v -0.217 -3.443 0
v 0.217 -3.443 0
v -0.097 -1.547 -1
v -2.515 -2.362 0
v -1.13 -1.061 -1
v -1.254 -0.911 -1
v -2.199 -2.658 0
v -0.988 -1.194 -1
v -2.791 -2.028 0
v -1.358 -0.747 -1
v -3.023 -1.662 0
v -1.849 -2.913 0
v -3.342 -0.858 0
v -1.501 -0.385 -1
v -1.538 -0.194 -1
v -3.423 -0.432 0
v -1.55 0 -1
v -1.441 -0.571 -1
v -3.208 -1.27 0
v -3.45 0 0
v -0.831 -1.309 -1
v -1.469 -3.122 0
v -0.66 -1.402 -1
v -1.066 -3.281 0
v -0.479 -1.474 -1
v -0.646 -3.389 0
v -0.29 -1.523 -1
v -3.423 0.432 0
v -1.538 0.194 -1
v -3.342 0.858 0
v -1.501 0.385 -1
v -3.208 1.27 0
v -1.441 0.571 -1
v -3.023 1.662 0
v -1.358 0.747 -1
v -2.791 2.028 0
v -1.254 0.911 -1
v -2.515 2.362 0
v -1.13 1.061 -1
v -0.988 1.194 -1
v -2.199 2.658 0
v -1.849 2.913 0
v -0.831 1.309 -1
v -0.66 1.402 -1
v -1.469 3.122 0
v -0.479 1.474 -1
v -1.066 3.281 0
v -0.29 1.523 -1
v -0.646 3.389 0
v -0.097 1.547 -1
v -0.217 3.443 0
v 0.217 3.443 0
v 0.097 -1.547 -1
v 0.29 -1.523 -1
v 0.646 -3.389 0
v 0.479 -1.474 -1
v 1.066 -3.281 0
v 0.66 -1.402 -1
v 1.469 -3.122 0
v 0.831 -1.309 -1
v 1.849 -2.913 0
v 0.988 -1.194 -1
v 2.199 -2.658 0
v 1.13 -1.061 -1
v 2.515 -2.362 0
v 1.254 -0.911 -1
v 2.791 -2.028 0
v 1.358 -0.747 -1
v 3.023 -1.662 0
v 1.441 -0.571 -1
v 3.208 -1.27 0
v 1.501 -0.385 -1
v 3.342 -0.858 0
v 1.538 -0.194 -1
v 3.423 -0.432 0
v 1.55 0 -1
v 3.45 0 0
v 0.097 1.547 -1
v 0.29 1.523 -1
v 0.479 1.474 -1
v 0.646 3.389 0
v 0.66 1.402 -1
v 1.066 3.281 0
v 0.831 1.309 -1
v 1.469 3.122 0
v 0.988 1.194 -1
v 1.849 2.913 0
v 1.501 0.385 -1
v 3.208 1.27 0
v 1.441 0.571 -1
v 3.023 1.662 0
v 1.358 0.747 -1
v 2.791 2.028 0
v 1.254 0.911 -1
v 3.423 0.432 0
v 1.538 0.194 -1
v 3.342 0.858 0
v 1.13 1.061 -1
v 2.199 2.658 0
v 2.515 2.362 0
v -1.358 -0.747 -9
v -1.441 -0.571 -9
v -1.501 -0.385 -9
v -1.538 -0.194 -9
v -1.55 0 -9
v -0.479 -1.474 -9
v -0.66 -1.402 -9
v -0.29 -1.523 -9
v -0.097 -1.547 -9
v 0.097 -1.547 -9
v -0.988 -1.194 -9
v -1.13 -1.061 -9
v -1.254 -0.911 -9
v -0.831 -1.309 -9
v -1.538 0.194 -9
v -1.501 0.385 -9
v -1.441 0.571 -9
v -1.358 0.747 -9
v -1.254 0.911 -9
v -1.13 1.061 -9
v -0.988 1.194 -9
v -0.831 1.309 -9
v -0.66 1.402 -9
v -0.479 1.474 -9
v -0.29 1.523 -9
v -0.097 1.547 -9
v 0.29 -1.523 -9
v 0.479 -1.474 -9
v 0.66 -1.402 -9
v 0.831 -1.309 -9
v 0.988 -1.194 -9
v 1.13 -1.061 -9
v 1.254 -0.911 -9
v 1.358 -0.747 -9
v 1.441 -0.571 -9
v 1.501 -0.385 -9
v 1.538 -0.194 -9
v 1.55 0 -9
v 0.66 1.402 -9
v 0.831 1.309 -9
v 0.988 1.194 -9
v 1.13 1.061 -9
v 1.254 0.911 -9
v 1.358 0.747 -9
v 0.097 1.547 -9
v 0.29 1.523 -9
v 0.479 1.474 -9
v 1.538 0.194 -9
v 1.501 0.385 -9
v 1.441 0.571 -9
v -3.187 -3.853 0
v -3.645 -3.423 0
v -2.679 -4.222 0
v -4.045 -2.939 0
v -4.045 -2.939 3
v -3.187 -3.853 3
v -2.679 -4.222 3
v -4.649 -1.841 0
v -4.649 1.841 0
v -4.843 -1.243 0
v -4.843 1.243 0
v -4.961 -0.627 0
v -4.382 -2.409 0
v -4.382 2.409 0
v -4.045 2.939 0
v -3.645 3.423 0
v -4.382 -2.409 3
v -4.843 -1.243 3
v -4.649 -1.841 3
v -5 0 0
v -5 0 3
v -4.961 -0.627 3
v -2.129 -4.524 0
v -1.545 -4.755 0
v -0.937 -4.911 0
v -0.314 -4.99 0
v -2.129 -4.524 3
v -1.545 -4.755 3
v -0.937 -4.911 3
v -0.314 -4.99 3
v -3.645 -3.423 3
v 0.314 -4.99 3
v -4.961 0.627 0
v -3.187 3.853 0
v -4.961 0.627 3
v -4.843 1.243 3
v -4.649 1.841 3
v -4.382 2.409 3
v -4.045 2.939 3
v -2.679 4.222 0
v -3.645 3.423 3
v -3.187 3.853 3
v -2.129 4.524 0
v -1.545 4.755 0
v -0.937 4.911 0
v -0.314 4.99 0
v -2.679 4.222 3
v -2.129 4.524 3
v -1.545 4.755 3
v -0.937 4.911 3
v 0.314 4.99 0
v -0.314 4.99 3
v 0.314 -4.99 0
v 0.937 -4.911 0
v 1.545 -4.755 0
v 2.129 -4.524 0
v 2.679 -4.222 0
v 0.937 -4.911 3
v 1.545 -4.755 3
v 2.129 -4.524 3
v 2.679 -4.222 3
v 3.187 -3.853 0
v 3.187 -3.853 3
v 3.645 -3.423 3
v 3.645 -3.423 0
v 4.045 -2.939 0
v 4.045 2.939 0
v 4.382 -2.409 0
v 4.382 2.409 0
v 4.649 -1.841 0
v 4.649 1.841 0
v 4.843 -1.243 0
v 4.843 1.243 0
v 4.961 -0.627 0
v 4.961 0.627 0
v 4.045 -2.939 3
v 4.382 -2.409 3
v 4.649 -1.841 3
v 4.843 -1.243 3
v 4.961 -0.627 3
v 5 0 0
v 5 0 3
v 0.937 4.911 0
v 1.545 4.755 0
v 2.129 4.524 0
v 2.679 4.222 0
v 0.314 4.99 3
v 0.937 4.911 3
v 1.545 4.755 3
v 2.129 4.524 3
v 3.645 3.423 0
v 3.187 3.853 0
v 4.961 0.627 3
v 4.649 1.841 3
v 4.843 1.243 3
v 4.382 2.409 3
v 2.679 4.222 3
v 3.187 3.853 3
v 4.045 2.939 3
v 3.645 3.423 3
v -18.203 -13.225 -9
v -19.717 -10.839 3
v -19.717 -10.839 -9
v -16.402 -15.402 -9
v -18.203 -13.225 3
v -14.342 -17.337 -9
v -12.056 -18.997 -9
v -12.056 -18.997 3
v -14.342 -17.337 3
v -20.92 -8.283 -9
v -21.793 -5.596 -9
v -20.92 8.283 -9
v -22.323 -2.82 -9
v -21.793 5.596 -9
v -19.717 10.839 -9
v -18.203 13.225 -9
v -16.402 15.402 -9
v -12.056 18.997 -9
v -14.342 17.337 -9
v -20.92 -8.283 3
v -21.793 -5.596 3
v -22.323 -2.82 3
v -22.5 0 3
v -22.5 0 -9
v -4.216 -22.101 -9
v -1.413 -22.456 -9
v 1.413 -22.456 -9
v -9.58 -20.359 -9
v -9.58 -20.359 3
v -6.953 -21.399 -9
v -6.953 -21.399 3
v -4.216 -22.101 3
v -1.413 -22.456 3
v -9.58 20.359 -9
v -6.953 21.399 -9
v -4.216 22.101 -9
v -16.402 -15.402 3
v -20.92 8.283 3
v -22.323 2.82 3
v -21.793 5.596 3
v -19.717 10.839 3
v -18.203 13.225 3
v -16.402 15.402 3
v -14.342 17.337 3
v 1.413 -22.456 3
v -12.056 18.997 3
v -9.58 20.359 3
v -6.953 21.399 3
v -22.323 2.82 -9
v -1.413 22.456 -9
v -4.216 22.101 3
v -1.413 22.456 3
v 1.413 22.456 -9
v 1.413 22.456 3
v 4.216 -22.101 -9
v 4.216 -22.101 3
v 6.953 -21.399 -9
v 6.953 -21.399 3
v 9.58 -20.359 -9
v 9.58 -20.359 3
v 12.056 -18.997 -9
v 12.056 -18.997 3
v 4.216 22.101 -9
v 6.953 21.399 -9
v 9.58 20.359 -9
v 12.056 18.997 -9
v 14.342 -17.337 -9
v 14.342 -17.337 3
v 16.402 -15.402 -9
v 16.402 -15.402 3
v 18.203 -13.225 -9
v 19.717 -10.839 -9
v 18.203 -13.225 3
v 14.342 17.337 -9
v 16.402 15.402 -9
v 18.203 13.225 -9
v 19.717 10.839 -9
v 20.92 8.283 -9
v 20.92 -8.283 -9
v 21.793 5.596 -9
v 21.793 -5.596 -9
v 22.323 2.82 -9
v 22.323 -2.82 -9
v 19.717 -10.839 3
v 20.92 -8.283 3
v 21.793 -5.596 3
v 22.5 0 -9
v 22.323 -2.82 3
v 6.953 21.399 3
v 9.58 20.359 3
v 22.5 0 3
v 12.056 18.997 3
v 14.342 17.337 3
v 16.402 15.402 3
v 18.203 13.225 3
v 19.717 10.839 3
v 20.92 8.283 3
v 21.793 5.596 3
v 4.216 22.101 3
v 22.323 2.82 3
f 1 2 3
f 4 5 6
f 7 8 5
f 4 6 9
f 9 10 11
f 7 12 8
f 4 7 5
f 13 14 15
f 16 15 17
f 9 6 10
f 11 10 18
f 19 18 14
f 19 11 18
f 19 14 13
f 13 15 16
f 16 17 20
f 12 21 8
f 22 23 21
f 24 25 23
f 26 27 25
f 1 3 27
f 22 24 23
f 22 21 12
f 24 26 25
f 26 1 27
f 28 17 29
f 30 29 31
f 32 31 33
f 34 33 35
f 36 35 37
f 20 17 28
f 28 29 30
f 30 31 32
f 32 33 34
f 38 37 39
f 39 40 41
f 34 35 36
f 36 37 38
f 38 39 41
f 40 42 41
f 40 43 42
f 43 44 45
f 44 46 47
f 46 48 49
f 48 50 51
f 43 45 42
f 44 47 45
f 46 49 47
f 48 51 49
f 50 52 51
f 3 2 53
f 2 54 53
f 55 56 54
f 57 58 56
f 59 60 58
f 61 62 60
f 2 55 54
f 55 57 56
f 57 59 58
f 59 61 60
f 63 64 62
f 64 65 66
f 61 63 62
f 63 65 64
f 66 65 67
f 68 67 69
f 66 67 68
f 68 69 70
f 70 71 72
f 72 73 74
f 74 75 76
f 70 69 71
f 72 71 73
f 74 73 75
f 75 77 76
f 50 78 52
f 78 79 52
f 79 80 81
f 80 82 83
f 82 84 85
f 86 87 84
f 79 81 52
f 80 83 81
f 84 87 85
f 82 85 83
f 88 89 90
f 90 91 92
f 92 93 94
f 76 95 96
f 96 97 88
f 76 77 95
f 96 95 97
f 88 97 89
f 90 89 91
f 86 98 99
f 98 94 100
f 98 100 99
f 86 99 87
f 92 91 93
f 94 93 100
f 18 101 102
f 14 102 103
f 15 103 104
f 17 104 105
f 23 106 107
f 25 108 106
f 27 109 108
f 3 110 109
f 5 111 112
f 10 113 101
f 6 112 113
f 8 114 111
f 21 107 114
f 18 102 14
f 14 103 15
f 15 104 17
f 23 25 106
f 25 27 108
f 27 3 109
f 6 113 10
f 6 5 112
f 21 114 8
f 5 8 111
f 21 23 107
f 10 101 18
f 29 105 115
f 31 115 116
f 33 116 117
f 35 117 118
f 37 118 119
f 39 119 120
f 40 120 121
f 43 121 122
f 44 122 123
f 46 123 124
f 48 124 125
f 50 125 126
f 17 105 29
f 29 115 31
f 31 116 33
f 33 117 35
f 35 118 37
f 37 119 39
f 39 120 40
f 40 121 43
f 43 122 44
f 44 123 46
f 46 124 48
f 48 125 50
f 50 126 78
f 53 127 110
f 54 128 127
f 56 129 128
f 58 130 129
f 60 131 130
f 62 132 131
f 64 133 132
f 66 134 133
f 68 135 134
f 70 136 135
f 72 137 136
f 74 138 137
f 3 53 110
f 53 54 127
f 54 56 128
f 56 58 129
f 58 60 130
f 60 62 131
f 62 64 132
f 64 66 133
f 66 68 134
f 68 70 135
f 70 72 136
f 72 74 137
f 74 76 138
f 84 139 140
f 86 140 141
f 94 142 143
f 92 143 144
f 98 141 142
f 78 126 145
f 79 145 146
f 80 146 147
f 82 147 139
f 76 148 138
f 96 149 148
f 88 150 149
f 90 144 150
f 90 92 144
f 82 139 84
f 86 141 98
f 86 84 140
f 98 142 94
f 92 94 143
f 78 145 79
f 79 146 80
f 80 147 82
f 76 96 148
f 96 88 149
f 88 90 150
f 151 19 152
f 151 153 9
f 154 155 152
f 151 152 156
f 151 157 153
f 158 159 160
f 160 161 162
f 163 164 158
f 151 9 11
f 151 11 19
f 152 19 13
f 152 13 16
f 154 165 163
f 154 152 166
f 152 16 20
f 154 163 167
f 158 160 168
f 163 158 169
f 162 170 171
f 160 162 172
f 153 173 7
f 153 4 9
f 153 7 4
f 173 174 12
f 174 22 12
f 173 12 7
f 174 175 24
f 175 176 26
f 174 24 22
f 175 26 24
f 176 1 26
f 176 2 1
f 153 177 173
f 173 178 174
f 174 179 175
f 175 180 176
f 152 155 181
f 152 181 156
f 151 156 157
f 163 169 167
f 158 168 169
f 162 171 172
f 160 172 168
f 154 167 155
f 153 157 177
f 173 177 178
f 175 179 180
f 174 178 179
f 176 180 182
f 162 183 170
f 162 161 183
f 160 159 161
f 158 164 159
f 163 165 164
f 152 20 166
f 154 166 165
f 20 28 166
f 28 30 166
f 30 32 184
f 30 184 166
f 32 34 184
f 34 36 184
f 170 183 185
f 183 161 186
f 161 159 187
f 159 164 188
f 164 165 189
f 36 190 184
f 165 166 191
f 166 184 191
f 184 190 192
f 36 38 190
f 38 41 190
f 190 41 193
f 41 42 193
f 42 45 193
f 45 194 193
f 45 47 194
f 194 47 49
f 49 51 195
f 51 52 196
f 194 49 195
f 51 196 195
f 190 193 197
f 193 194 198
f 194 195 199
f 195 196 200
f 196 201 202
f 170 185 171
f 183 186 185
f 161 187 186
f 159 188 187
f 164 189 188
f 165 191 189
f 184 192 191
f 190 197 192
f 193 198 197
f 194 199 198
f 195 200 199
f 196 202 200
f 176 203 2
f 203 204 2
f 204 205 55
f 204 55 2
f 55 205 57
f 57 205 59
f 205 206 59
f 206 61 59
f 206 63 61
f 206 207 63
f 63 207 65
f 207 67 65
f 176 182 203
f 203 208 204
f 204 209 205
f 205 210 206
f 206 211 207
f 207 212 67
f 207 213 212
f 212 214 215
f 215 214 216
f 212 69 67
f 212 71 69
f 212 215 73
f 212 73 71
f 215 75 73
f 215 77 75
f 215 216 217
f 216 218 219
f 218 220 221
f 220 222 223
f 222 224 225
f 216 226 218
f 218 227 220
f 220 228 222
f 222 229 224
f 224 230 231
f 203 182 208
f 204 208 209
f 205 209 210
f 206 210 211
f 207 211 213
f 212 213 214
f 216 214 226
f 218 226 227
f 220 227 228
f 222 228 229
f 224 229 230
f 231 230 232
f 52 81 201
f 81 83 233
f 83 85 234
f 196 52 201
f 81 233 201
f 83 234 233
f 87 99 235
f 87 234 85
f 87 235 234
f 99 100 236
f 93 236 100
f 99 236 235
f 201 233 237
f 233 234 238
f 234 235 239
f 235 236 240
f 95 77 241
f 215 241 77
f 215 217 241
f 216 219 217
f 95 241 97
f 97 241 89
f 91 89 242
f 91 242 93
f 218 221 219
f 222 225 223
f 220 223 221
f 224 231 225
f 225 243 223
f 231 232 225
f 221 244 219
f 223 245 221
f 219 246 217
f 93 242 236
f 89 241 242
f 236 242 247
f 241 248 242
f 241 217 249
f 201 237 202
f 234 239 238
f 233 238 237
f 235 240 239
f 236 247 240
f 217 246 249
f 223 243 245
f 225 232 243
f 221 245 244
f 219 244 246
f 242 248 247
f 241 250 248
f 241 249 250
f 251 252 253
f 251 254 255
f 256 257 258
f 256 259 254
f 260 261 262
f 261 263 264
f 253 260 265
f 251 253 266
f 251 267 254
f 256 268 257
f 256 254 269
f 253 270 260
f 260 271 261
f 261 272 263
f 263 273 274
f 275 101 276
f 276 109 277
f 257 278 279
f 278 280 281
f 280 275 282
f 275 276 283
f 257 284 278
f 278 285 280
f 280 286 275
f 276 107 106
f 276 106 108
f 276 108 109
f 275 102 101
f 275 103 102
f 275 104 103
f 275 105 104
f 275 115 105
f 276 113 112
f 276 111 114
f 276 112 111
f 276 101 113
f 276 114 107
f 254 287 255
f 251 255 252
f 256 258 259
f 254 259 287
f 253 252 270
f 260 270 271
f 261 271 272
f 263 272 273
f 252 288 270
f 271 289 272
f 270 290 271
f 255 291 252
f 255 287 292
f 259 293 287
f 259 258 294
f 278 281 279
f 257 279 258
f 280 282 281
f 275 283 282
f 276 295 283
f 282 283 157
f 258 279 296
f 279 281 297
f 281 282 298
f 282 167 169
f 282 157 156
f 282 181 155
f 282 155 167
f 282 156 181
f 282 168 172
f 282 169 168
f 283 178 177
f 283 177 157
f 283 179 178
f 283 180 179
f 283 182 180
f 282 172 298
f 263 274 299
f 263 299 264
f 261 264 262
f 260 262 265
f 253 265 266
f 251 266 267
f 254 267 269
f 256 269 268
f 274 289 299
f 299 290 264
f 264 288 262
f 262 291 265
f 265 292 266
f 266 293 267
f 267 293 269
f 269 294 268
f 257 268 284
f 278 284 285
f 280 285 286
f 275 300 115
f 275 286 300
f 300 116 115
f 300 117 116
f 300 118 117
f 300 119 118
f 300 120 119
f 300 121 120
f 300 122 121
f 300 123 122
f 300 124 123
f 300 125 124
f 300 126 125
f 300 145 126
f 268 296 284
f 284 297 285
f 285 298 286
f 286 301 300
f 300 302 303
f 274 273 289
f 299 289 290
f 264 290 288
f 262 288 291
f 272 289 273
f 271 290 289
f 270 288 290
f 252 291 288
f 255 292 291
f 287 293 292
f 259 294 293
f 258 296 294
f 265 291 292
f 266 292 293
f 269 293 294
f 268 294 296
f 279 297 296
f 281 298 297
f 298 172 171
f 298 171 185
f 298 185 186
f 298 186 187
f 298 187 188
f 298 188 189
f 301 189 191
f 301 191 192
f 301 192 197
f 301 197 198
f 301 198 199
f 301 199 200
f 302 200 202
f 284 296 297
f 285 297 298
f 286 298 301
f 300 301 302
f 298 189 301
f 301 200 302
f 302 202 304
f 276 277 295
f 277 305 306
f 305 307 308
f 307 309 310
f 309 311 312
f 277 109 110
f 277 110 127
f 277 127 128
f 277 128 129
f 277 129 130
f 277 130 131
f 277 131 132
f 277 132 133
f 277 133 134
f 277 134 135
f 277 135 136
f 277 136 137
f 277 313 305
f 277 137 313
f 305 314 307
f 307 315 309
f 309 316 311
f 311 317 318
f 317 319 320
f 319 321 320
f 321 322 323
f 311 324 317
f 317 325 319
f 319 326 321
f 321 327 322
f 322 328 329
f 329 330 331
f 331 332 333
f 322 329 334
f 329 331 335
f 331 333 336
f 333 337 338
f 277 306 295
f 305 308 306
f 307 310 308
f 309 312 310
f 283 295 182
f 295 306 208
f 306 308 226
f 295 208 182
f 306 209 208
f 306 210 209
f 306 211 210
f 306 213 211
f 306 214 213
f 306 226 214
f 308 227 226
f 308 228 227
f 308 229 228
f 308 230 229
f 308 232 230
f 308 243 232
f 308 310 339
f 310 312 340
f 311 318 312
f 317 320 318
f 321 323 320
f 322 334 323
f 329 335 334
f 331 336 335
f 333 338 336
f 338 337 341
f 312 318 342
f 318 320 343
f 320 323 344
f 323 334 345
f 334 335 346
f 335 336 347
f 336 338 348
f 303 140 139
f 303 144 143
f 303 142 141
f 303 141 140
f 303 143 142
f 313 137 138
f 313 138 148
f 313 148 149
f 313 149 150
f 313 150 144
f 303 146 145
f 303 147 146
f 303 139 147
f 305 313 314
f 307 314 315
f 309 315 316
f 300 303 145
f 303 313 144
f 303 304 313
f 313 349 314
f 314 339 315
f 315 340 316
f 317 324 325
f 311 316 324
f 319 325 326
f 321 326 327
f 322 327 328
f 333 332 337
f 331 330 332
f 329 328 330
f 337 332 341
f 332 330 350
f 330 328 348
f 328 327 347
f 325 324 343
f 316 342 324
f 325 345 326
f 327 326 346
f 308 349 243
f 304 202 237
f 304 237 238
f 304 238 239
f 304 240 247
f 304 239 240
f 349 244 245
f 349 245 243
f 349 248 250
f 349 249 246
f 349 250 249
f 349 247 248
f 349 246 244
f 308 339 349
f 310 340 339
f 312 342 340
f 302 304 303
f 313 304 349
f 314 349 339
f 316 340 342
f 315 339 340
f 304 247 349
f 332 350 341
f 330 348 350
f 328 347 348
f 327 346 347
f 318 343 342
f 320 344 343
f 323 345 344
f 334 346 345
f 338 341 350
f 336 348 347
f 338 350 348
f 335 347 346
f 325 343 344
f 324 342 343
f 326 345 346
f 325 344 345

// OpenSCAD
$fn = 50;

difference() {
	union() {
		translate(v = [0, 0, -9.0]) {
			cylinder(h = 12, r = 22.5);
		}
	}
	union() {
		translate(v = [0, 0, 0]) {
			rotate(a = [0, 0, 0]) {
				difference() {
					union() {
						translate(v = [0, 0, -12.0]) {
							cylinder(h = 12, r = 1.25);
						}
						translate(v = [0, 0, -1.0]) {
							cylinder(h = 1.0, r1 = 1.55, r2 = 3.45);
						}
						translate(v = [0, 0, -12.0]) {
							cylinder(h = 12, r = 1.55);
						}
						translate(v = [0, 0, -12.0]) {
							cylinder(h = 12, r = 1.25);
						}
					}
					union();
				}
			}
		}
		#cylinder(h = 3, r = 5.0);
	}
}
